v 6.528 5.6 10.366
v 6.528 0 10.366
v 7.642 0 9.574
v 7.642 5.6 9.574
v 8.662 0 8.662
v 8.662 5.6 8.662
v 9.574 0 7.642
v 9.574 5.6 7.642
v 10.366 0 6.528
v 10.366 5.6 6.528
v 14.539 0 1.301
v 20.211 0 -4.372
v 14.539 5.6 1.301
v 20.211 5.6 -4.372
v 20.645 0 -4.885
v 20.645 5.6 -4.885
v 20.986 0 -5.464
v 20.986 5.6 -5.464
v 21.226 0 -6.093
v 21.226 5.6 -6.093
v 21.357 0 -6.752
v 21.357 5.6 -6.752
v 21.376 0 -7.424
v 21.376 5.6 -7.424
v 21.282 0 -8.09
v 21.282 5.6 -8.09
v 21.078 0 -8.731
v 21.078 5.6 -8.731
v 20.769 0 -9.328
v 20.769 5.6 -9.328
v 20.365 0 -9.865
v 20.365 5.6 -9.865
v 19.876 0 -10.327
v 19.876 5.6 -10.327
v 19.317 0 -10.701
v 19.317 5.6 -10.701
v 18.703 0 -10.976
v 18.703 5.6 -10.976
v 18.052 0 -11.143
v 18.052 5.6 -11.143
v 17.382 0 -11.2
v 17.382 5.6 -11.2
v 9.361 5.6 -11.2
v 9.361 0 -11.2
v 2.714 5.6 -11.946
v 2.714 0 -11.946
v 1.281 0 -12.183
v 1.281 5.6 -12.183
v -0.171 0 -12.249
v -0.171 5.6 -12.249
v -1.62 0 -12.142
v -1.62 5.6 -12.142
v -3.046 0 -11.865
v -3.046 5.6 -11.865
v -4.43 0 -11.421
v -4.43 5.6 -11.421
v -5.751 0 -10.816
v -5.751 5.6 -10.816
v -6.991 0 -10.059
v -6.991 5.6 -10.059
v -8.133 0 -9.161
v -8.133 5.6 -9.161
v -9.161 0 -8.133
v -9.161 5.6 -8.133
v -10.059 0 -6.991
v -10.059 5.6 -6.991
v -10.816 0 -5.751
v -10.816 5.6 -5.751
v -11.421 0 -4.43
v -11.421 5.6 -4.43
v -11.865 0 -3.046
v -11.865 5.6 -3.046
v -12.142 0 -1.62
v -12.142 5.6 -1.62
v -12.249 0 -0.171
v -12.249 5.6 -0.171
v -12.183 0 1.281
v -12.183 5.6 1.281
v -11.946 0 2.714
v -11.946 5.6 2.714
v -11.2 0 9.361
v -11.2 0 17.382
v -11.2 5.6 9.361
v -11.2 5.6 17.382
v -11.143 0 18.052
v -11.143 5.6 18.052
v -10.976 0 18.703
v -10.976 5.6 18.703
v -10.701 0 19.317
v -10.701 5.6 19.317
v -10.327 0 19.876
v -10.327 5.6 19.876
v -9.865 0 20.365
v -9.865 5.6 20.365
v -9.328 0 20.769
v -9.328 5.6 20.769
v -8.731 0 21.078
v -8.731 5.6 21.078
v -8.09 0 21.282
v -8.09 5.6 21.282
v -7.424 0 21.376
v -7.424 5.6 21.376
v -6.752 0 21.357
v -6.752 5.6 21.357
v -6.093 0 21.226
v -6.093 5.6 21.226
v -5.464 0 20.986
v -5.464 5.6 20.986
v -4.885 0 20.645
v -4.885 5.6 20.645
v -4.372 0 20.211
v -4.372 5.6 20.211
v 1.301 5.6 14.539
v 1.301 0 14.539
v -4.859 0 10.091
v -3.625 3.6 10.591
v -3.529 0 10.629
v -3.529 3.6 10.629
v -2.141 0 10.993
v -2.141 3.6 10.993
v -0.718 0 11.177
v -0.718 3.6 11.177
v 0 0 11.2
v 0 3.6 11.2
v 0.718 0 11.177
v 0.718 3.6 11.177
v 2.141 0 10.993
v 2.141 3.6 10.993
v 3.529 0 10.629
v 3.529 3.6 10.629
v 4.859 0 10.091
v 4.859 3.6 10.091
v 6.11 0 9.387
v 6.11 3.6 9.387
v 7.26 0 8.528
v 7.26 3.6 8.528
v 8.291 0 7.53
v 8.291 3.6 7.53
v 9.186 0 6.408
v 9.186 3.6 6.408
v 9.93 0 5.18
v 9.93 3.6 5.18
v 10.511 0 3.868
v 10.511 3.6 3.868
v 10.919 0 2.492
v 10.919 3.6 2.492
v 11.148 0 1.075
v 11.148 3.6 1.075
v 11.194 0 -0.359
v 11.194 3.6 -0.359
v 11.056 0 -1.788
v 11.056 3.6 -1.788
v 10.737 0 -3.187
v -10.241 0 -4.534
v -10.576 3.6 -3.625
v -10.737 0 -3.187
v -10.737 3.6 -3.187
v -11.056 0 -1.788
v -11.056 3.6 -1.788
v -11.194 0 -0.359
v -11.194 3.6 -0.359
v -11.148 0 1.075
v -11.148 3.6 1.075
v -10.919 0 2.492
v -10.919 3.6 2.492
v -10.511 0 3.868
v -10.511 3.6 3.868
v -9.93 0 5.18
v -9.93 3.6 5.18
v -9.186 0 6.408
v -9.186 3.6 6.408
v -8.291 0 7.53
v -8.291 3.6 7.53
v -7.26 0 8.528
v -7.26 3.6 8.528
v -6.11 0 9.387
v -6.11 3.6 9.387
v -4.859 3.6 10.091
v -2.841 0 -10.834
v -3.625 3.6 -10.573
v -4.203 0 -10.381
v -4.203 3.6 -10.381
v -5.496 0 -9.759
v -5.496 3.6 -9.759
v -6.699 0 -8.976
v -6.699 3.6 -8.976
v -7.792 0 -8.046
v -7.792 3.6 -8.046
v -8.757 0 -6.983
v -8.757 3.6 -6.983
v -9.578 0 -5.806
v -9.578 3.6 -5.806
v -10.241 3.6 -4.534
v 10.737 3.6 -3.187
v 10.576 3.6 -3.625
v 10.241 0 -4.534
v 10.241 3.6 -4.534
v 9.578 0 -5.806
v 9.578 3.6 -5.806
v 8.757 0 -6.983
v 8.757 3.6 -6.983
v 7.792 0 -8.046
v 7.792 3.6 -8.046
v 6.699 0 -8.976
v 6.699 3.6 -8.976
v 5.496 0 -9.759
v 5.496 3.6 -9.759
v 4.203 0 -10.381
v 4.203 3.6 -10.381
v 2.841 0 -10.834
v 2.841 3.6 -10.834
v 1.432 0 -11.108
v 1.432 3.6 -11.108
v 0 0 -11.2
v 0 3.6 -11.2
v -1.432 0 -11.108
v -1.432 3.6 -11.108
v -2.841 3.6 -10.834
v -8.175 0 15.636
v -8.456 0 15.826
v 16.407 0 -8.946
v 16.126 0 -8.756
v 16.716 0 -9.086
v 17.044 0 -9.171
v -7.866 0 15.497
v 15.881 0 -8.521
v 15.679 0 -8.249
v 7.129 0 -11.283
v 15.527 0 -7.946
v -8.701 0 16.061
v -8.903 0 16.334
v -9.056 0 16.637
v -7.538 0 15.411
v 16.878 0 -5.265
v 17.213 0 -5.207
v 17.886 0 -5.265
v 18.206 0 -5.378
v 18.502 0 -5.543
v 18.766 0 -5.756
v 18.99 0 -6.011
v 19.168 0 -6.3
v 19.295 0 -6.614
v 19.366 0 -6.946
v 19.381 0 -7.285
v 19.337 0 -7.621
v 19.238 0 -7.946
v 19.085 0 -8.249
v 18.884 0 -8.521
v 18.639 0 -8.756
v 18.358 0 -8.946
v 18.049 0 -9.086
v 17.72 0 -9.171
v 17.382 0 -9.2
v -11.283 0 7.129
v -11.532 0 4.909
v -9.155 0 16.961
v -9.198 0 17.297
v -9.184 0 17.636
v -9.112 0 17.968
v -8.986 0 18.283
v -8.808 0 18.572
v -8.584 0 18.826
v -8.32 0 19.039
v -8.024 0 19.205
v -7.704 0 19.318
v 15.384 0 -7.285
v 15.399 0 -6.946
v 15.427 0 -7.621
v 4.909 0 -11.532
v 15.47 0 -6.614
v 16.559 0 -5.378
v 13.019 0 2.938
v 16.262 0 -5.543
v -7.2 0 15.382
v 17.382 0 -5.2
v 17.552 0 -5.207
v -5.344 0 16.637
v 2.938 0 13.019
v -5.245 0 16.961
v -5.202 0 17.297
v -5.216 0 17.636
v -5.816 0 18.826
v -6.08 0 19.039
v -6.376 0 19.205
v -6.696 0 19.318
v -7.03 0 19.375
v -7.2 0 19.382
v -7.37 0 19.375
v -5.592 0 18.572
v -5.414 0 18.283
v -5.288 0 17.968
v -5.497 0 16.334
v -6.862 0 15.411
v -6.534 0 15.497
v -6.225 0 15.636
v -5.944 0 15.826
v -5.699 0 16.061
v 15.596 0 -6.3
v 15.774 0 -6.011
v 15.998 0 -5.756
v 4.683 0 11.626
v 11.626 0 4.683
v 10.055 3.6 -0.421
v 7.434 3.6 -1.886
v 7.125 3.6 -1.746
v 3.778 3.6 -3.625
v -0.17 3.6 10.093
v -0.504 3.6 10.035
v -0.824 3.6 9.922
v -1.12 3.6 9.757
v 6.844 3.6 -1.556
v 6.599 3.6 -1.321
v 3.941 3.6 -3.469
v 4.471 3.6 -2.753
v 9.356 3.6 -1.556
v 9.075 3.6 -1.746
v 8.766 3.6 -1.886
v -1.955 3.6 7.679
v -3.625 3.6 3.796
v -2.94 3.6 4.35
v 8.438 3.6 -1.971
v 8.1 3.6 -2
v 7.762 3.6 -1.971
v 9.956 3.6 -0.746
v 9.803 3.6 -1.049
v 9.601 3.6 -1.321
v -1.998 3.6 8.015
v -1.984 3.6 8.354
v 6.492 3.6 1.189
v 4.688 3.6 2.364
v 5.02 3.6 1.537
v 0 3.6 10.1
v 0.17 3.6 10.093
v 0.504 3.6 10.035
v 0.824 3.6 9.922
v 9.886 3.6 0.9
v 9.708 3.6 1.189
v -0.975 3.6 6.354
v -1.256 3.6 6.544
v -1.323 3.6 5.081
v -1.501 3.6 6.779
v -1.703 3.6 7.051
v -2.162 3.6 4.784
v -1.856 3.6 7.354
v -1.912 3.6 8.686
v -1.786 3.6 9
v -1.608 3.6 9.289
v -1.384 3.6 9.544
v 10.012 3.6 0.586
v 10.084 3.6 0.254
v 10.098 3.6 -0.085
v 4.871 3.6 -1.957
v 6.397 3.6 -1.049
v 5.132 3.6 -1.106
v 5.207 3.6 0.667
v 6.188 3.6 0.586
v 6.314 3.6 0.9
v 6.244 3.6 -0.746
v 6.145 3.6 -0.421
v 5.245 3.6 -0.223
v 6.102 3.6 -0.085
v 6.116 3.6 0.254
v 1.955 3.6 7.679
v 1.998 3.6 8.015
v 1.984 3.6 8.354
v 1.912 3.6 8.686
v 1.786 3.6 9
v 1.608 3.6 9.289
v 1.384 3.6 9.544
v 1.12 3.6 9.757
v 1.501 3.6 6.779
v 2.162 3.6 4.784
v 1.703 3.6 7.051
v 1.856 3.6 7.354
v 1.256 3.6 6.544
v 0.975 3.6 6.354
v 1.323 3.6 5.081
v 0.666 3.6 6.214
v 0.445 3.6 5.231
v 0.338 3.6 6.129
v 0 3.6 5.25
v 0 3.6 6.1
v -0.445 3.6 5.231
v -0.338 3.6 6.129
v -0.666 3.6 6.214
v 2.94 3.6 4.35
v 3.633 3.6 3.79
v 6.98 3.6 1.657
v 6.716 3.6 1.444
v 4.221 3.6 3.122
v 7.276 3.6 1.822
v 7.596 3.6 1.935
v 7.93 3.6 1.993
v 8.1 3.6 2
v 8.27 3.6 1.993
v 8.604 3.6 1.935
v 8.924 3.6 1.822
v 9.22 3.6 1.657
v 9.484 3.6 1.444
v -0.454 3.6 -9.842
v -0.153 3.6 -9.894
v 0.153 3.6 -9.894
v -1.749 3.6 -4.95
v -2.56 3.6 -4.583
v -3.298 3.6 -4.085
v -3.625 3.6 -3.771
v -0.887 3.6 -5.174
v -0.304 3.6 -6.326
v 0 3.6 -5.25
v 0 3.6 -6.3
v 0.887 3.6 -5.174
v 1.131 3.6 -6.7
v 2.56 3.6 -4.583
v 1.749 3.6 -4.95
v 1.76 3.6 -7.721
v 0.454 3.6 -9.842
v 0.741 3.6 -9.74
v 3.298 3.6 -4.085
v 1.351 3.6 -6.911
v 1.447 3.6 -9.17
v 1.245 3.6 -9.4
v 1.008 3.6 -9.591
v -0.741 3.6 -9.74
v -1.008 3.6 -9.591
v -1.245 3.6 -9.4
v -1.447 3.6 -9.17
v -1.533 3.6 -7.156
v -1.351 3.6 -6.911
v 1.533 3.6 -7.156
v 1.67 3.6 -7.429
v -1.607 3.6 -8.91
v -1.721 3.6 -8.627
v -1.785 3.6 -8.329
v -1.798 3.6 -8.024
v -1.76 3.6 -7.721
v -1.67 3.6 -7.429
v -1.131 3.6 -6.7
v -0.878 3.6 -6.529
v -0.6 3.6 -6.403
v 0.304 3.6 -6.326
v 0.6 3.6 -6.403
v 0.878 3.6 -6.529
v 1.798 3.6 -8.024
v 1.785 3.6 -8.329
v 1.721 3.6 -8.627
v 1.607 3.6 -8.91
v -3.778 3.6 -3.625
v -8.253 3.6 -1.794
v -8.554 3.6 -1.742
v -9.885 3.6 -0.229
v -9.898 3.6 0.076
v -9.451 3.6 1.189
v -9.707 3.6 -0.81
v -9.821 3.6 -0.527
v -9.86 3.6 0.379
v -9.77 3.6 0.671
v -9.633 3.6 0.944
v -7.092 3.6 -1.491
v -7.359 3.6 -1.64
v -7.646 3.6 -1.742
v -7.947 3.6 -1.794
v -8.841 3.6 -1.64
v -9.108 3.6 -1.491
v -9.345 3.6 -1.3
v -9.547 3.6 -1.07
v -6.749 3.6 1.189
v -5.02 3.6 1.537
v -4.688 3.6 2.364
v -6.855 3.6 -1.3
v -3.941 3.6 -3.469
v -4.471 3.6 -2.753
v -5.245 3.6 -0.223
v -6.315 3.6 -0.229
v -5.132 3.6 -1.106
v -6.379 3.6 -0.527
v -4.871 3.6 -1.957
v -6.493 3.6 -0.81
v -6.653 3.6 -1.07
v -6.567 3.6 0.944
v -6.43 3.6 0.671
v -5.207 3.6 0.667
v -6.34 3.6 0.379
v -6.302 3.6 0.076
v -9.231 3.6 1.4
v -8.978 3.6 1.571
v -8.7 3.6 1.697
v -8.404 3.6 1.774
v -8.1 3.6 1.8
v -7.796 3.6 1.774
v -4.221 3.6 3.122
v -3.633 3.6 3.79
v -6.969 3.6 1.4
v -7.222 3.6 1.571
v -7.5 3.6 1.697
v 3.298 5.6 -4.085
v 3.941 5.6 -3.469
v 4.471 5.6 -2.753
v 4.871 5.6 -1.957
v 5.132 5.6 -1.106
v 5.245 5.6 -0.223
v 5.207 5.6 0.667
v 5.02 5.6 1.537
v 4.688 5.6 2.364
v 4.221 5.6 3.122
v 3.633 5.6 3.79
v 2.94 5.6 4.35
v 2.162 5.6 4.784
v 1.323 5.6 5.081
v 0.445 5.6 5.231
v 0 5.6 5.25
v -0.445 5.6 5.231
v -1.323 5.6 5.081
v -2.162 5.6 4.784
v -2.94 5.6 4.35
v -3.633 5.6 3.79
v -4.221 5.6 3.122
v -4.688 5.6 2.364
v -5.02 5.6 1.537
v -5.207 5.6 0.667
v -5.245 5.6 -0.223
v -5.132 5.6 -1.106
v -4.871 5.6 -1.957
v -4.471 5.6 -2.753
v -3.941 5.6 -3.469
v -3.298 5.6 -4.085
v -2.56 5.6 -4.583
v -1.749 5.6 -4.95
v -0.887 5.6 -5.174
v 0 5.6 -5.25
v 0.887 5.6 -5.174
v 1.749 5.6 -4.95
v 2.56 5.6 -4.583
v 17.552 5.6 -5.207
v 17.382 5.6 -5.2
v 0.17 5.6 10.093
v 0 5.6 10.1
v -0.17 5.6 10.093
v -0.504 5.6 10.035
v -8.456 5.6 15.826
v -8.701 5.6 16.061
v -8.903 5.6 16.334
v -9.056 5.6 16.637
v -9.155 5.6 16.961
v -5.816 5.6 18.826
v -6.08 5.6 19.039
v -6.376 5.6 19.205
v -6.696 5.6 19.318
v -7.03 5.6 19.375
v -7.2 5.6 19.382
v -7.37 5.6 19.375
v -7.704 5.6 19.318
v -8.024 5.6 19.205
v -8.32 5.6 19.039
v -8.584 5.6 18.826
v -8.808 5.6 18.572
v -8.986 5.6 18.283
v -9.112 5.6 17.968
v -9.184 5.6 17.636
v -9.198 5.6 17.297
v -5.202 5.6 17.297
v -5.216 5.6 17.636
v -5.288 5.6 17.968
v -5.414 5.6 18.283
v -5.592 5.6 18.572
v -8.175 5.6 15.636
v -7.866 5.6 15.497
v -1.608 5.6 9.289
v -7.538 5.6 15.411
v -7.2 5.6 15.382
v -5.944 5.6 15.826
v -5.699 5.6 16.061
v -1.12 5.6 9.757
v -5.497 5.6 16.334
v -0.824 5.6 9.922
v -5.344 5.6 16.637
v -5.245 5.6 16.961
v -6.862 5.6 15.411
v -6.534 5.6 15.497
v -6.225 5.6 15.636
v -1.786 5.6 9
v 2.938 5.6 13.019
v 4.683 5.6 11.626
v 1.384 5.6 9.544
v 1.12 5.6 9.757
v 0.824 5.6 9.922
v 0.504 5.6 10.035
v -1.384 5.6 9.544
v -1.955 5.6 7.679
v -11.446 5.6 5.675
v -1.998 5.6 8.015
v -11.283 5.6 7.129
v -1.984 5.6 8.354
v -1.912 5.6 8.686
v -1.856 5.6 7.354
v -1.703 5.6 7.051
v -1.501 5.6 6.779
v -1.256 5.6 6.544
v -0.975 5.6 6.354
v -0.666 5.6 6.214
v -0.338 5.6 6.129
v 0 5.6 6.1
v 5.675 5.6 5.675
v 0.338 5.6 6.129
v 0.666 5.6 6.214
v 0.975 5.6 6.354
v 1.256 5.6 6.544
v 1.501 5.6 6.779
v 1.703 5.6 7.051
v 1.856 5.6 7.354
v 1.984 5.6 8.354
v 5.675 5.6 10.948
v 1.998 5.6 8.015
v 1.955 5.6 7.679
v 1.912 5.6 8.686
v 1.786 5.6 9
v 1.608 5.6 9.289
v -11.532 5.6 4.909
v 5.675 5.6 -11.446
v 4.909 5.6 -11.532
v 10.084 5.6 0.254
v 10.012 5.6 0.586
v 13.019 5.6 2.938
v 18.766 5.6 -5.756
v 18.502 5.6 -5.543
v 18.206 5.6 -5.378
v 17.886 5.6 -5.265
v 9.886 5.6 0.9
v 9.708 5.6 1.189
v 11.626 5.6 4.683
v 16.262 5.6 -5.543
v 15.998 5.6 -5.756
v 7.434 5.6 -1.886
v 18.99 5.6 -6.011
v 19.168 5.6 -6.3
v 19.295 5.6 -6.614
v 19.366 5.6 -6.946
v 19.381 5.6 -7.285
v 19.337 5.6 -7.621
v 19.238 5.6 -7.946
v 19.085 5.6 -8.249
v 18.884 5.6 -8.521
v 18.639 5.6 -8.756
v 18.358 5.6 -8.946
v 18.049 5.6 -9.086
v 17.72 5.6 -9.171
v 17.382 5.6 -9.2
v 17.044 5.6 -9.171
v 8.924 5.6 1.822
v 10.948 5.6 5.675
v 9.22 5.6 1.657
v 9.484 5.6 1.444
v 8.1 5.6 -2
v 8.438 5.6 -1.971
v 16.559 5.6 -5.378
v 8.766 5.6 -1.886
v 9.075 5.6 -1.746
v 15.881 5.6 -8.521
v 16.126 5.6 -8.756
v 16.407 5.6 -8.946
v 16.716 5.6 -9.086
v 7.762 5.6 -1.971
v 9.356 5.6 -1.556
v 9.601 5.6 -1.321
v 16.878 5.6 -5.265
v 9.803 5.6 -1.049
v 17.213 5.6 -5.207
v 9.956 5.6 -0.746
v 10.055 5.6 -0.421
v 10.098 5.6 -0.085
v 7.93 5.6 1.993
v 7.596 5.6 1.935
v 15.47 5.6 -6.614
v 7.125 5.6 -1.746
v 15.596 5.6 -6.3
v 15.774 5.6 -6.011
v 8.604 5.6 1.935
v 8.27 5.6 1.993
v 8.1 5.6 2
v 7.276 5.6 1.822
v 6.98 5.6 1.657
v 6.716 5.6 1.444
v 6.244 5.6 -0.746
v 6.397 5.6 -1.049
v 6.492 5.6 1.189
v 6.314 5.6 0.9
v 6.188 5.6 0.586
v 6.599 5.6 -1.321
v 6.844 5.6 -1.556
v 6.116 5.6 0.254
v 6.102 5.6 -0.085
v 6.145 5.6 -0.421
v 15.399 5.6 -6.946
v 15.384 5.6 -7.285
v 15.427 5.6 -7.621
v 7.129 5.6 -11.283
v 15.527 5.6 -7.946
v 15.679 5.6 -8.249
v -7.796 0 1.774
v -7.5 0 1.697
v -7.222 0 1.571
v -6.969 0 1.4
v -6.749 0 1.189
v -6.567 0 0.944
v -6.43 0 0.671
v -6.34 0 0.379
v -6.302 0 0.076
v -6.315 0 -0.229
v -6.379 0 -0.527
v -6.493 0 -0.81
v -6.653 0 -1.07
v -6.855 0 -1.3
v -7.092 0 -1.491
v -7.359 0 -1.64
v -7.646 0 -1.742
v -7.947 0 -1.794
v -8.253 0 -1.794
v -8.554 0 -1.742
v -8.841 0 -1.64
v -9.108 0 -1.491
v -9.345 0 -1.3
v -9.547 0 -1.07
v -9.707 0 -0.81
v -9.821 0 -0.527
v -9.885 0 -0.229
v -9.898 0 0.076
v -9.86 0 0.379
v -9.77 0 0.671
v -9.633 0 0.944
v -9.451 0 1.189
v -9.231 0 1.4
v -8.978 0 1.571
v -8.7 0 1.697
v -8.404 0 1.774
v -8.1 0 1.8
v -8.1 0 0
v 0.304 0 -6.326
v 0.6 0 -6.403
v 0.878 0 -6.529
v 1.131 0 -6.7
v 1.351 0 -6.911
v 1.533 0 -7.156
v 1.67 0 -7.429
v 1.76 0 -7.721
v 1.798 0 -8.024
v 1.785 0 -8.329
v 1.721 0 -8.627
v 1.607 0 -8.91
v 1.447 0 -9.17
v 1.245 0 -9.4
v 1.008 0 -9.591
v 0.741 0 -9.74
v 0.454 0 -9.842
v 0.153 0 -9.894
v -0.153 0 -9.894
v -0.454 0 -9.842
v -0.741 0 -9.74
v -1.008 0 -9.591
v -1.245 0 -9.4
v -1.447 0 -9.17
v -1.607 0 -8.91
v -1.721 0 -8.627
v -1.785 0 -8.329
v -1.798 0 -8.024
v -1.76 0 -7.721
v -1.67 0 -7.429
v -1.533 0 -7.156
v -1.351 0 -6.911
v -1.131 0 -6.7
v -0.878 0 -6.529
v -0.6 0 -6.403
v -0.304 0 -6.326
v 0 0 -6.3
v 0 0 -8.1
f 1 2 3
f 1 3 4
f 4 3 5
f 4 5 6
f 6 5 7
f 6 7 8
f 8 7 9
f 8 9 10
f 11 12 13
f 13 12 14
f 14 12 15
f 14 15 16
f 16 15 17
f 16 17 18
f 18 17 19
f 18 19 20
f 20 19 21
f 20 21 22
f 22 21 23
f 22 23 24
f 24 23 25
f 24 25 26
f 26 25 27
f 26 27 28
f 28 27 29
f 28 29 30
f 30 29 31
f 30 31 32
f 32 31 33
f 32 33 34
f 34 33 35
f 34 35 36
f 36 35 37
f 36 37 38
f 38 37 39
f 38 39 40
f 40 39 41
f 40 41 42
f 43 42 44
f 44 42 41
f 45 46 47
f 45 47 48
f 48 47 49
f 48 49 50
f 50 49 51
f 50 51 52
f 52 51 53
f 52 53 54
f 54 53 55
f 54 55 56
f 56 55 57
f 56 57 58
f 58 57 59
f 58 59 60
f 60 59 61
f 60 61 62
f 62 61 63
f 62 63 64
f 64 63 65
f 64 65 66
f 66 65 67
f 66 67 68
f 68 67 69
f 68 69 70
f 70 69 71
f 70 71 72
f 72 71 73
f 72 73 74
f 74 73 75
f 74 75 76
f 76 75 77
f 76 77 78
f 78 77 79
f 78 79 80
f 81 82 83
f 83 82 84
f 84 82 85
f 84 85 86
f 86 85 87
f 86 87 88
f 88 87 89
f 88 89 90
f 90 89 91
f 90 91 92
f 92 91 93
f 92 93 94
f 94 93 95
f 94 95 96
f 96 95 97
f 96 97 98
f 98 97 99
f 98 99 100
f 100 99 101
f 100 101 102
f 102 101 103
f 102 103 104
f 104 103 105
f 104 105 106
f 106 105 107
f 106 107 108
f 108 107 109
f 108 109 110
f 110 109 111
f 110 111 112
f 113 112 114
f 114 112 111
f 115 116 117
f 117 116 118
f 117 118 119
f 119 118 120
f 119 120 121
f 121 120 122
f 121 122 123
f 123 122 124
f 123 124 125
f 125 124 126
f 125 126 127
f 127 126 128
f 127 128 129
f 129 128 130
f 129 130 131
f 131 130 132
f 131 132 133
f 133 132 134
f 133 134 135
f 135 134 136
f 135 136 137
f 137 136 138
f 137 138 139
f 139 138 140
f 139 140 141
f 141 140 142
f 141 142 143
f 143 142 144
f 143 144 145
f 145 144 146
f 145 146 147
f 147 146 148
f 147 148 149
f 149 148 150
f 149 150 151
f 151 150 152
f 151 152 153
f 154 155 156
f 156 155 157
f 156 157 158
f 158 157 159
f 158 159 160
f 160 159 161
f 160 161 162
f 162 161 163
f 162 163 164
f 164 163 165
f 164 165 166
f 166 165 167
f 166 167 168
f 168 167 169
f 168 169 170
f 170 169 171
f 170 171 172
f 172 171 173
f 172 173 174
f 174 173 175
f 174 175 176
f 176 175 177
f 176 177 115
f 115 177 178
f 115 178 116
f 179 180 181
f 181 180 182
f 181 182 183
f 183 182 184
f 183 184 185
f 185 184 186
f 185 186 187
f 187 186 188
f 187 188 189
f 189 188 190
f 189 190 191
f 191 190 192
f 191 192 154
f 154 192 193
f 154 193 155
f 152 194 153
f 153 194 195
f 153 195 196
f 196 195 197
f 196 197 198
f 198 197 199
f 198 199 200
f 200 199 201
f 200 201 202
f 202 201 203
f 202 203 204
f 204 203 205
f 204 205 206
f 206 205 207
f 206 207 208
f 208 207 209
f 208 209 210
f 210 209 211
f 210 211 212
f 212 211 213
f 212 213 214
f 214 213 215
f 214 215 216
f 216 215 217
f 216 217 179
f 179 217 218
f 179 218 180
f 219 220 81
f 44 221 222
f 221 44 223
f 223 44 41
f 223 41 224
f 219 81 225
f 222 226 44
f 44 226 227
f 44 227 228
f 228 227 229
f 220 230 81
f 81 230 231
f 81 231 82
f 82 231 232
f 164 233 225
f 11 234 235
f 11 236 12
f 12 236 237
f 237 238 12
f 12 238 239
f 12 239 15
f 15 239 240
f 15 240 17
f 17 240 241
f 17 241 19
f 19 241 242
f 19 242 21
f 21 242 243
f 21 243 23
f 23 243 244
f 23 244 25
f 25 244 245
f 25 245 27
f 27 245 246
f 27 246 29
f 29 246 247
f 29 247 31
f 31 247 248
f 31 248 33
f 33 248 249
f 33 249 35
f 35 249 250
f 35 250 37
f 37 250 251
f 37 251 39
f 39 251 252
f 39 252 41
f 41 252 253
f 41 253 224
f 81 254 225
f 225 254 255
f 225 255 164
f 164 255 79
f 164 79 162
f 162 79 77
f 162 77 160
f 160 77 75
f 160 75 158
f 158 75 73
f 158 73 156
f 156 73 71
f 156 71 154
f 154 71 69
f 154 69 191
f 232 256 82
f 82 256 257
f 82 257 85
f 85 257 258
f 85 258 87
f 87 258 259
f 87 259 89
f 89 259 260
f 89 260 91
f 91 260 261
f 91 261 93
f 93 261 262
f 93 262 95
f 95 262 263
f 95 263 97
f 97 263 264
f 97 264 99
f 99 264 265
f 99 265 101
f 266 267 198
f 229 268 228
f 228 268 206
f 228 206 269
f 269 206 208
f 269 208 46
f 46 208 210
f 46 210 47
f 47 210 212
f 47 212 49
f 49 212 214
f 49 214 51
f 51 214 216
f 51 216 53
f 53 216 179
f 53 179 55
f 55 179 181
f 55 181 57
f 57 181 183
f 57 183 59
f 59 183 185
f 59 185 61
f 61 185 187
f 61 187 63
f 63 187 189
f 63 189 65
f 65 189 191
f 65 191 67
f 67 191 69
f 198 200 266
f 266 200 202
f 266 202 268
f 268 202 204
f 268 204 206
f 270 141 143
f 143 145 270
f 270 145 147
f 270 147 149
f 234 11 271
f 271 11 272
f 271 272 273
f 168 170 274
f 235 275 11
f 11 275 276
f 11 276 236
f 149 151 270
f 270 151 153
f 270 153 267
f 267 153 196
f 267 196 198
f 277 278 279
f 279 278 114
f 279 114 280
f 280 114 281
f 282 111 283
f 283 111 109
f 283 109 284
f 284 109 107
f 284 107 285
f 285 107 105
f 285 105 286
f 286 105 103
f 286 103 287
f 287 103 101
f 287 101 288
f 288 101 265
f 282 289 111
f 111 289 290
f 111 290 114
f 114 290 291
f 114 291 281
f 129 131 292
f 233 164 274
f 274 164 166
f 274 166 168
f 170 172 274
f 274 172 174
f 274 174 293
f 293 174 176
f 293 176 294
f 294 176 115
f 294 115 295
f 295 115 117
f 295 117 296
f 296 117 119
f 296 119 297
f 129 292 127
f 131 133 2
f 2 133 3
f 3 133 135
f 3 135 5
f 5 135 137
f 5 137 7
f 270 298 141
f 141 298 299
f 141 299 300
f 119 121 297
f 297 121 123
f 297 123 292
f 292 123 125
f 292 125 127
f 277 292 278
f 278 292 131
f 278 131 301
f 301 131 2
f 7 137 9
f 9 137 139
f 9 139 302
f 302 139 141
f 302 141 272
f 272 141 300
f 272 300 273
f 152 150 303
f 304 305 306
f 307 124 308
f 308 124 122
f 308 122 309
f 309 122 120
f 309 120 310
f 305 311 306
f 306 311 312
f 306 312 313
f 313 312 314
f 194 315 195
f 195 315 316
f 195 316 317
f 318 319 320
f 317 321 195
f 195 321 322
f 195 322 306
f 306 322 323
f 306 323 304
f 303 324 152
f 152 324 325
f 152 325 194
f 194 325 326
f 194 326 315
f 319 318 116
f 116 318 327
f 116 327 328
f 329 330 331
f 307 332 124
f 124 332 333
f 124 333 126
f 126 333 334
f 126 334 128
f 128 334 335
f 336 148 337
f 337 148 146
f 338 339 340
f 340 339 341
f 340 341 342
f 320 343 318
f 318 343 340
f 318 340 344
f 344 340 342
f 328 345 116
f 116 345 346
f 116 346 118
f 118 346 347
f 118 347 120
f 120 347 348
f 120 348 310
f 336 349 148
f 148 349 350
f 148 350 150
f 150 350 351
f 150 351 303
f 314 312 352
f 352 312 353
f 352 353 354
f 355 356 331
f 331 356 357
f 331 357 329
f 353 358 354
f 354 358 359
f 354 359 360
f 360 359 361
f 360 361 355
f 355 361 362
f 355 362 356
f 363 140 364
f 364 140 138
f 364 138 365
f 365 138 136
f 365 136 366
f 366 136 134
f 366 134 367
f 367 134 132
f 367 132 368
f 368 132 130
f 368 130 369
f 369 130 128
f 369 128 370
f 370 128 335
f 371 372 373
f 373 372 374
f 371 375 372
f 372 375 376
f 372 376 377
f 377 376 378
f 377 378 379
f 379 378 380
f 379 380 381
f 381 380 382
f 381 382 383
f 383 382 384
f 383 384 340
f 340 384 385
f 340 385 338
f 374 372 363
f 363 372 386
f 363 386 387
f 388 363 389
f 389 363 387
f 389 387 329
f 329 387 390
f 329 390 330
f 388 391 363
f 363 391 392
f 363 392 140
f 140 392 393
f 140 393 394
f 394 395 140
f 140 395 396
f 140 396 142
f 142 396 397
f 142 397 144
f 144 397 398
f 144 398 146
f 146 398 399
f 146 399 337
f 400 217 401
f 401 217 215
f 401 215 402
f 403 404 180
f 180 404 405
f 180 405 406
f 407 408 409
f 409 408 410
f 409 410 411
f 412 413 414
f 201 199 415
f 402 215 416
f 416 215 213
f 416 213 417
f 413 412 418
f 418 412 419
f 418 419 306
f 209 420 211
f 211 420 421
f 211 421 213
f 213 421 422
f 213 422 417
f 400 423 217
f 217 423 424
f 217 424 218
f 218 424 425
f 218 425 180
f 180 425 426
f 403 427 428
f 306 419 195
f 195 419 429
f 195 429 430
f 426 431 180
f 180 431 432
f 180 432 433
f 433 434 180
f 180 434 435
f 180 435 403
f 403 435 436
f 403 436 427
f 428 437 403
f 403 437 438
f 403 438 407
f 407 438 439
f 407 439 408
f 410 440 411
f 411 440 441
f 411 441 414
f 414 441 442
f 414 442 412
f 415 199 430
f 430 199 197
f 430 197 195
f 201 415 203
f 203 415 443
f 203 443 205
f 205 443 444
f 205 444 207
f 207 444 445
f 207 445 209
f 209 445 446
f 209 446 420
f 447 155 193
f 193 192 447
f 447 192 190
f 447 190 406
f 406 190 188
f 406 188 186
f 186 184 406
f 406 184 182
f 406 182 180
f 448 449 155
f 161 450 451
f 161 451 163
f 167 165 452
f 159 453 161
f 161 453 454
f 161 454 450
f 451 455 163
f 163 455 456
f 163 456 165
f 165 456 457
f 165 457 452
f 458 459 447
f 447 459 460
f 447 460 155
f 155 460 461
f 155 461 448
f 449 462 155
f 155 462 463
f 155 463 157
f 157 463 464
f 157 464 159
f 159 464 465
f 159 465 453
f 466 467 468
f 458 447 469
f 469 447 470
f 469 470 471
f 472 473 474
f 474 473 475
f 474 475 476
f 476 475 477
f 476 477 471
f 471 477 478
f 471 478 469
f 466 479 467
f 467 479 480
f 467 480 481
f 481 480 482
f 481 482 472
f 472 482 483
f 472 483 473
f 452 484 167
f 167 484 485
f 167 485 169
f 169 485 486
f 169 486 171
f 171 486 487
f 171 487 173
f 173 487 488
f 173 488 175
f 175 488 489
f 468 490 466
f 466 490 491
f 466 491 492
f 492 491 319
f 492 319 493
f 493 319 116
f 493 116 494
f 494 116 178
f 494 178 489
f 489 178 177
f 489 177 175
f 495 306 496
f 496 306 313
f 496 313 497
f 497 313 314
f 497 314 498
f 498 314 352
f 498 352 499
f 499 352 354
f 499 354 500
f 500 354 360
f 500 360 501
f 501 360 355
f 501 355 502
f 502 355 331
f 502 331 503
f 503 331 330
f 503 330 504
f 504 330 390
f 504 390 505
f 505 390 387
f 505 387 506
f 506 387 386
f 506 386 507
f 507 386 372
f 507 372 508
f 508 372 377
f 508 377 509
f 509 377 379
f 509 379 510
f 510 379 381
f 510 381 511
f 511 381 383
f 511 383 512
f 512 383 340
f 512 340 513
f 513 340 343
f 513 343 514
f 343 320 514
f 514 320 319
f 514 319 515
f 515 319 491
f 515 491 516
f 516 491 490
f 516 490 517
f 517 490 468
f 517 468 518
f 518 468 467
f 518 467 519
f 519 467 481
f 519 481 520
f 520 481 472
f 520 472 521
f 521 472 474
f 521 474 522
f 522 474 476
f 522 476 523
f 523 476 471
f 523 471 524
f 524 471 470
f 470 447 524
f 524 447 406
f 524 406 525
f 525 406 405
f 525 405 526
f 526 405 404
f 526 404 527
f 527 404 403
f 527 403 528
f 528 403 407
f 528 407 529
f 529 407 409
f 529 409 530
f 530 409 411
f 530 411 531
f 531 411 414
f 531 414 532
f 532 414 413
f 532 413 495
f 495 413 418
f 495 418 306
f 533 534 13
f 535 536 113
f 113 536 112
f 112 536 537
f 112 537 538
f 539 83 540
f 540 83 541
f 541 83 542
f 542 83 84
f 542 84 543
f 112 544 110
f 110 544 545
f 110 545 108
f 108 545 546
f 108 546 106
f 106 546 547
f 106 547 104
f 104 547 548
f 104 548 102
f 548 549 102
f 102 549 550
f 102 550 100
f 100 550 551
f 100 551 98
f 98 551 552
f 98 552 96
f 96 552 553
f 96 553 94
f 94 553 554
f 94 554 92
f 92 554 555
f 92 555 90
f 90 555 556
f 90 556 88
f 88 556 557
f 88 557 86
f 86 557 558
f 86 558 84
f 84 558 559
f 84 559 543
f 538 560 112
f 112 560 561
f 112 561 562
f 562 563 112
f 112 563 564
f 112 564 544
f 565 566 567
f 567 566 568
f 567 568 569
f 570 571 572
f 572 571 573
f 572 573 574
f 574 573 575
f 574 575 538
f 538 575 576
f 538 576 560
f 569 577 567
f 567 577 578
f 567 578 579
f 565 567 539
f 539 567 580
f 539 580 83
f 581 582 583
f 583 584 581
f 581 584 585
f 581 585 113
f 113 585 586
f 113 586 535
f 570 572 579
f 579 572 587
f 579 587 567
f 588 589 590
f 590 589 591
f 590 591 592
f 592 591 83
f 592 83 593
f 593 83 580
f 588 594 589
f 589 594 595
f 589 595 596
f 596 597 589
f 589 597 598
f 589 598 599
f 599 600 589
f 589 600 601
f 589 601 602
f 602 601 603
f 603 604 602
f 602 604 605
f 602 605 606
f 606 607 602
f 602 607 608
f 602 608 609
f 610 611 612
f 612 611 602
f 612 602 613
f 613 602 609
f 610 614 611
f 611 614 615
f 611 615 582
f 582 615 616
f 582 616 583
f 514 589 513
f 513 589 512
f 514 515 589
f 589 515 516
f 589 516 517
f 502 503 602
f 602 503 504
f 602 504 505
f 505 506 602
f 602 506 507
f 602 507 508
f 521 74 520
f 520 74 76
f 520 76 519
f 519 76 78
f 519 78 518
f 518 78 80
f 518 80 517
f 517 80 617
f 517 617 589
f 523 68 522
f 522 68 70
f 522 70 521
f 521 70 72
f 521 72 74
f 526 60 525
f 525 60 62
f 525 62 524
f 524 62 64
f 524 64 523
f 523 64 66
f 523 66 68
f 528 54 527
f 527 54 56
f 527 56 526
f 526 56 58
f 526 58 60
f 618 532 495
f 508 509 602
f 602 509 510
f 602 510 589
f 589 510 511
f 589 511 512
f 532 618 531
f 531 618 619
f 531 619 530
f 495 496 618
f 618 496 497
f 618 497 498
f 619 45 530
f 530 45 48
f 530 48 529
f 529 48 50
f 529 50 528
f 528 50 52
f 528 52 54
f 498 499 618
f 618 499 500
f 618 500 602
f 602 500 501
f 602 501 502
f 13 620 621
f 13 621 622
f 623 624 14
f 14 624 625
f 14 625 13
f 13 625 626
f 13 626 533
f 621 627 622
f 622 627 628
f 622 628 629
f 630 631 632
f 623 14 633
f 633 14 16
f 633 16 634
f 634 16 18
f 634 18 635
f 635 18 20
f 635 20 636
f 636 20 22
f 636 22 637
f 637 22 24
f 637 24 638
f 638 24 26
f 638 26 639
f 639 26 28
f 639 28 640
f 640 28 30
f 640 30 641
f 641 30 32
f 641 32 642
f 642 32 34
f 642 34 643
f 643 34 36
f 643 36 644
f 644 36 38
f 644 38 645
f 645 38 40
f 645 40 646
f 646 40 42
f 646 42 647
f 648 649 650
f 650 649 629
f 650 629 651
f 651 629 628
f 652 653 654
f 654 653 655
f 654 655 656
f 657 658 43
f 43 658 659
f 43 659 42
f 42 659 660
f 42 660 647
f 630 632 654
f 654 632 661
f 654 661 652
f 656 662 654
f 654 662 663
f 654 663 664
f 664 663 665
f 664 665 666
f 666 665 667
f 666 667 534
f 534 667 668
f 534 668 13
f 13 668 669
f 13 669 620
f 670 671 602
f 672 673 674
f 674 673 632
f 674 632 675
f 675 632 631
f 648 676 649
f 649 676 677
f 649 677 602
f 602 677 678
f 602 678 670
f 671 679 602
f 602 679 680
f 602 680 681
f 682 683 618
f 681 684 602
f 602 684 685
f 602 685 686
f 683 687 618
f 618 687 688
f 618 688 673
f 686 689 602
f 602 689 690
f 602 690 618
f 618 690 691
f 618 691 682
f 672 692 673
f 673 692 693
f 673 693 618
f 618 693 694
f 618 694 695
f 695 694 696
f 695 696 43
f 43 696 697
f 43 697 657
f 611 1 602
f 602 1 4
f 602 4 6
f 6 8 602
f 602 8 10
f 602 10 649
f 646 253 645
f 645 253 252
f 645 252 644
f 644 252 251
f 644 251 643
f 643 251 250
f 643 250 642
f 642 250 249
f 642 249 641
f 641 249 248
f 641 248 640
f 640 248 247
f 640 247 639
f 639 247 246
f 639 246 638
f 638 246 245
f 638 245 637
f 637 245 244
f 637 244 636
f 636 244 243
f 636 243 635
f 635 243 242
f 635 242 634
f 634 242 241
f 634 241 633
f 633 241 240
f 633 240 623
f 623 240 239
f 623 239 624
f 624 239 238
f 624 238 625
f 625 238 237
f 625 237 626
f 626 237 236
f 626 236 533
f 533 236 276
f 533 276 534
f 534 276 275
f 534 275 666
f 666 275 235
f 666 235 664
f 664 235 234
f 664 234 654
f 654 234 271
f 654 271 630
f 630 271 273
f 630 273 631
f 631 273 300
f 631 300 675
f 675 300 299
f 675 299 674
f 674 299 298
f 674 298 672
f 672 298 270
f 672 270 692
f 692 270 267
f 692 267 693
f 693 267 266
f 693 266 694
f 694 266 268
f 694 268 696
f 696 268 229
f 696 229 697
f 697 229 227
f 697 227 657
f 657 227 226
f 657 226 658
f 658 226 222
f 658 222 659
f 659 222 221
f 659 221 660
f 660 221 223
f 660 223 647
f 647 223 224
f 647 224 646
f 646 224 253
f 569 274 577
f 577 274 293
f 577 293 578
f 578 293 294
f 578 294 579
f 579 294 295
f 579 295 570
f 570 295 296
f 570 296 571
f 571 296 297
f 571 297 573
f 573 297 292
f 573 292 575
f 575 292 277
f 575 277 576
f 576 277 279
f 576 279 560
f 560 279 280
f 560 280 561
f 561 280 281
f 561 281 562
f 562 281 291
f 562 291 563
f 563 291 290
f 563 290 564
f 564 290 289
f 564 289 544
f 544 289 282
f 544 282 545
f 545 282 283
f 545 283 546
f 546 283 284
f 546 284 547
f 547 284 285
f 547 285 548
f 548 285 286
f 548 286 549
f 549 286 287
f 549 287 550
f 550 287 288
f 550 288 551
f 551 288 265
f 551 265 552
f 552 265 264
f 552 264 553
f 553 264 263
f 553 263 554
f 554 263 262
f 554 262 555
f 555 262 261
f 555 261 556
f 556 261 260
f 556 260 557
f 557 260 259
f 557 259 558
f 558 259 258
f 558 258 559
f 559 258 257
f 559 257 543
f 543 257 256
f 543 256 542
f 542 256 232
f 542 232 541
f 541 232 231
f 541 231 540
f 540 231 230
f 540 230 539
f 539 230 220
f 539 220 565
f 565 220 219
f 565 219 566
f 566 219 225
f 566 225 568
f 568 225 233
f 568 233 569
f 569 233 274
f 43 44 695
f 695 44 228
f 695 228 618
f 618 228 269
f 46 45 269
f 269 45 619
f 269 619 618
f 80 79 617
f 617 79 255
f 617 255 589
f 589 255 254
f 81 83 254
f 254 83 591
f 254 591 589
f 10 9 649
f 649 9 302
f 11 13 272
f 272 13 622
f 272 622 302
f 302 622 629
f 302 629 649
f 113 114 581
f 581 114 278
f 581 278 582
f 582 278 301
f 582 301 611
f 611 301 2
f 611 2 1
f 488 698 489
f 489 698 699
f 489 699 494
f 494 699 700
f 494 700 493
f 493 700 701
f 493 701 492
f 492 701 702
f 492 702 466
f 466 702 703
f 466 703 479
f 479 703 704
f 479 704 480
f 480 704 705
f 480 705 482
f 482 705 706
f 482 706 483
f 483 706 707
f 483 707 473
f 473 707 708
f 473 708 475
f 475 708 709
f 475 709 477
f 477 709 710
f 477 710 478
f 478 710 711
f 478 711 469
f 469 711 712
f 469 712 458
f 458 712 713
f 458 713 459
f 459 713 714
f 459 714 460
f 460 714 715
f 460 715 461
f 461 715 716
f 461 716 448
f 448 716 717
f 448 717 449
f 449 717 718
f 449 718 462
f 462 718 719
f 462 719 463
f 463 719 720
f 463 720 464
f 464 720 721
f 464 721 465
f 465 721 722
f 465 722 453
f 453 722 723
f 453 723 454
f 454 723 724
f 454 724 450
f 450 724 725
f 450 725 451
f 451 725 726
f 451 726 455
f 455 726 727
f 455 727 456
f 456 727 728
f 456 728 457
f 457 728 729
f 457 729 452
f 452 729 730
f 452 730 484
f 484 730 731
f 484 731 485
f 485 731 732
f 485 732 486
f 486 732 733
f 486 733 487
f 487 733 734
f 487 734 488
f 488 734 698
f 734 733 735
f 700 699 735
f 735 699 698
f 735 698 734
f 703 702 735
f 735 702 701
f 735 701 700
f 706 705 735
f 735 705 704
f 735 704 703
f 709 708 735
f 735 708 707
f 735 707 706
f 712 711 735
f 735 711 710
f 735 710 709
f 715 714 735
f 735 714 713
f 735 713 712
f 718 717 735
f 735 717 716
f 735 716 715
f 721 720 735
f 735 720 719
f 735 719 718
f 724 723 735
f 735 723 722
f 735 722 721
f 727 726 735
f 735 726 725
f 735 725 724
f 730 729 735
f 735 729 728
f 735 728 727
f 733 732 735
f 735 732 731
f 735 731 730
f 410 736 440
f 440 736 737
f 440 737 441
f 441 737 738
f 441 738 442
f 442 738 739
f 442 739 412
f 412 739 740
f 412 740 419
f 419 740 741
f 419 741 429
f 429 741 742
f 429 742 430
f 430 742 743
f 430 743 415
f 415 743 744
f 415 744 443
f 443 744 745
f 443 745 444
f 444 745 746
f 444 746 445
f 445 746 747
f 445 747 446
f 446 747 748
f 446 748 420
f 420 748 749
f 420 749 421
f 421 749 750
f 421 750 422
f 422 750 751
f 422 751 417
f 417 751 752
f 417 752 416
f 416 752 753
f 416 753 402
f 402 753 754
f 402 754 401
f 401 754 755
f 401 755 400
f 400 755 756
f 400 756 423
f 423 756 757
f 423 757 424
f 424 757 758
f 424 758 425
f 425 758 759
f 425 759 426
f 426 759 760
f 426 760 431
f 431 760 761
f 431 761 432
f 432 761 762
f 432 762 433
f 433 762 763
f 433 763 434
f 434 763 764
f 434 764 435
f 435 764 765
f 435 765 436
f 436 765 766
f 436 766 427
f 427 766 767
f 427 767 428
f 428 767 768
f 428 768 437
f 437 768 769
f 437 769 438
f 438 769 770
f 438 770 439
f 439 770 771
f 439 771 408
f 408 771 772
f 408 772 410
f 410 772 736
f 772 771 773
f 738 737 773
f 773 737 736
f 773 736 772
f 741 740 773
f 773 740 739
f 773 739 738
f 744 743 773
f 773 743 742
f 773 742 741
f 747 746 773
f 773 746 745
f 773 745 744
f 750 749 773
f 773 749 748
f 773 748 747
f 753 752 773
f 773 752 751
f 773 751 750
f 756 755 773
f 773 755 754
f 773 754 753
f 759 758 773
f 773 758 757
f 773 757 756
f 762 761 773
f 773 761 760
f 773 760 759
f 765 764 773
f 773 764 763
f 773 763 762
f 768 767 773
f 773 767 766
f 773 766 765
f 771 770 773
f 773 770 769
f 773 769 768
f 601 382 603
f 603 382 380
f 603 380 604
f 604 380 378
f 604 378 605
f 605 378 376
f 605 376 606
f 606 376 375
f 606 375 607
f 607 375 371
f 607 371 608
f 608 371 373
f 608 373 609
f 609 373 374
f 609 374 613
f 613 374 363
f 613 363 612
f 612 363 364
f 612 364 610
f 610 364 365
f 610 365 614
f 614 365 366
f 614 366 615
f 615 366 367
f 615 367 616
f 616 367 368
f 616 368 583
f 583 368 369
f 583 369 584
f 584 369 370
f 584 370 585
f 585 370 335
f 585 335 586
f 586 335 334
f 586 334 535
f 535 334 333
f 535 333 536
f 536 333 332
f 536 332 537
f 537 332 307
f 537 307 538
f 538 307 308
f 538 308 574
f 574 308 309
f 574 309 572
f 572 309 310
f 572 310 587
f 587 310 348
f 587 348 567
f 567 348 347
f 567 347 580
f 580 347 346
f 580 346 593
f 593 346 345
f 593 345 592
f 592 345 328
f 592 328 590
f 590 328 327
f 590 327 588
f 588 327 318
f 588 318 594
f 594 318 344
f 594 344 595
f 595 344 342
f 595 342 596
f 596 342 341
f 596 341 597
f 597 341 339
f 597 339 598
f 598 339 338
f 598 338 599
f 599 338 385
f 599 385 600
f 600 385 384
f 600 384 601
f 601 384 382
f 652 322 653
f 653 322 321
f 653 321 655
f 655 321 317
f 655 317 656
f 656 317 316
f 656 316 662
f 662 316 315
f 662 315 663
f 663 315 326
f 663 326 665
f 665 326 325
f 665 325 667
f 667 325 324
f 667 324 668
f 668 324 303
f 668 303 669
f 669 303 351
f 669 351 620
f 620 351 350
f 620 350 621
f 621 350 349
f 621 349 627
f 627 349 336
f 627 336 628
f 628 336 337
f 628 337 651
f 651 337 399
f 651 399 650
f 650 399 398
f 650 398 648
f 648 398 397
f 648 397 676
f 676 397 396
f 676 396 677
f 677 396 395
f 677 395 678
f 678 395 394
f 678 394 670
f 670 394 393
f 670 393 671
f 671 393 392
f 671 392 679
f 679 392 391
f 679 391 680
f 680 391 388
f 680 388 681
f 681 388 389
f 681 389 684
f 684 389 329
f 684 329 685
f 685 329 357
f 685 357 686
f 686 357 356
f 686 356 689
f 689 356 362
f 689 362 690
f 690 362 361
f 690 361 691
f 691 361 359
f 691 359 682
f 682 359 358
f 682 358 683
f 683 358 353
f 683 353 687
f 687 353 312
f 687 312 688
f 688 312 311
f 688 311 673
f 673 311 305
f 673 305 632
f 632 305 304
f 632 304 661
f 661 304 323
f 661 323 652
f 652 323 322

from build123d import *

# Parameters (mm, degrees)
BOSS_EXTRUDE7_DEPTH = 3.6
SKETCH3_R           = 11.2
SKETCH3_R_2         = 5.25
BOSS_EXTRUDE8_DEPTH = 2
SKETCH4_R           = 2
CUT_EXTRUDE1_DEPTH  = 31.753353097
FILLET5_R           = 30
SKETCH5_R           = 1.8
BOSS_EXTRUDE9_DEPTH = 3.6
SKETCH6_R           = 2
CUT_EXTRUDE3_DEPTH  = 10


with BuildPart() as part:
    # Sketch1 → Boss-Extrude7 (new body)
    with BuildSketch(Plane(origin=(0, 0, 0), x_dir=(1, 0, 0), z_dir=(0, 1, 0))):
        with BuildLine():
            ThreePointArc((4.41085686, -11.428335039), (-4.687872046, -11.317524273), (-11.2, -4.962106408))
            Line((-11.2, -4.962106408), (-11.2, -17.382337649))
            ThreePointArc((-11.2, -17.382337649), (-8.730733729, -21.077855779), (-4.371572875, -20.210764774))
            Line((-4.371572875, -20.210764774), (4.41085686, -11.428335039))
        make_face()
        with BuildLine():
            ThreePointArc((7.91959592, -7.919595979), (-4.286054462, -10.347450756), (-11.2, 0))
            Line((-11.2, 0), (-11.2, -4.962106408))
            ThreePointArc((-11.2, -4.962106408), (-4.687872046, -11.317524273), (4.41085686, -11.428335039))
            Line((4.41085686, -11.428335039), (7.91959592, -7.919595979))
        make_face()
        with BuildLine():
            Line((11.428335039, -4.41085686), (7.91959592, -7.919595979))
            Line((7.91959592, -7.919595979), (4.41085686, -11.428335039))
            ThreePointArc((4.41085686, -11.428335039), (8.66205807, -8.66205807), (11.428335039, -4.41085686))
        make_face()
        with BuildLine():
            Line((4.962106408, 11.2), (0, 11.2))
            ThreePointArc((0, 11.2), (7.919595949, 7.919595949), (11.2, 0))
            ThreePointArc((11.2, 0), (10.347450756, -4.286054462), (7.91959592, -7.919595979))
            Line((7.91959592, -7.919595979), (11.428335039, -4.41085686))
            ThreePointArc((11.428335039, -4.41085686), (12.042831981, -2.243367532), (12.25, 0))
            ThreePointArc((12.25, 0), (10.267626393, 6.681193625), (4.962106408, 11.2))
        make_face()
        with BuildLine():
            Line((17.382337649, 11.2), (4.962106408, 11.2))
            ThreePointArc((4.962106408, 11.2), (10.267626393, 6.681193625), (12.25, 0))
            ThreePointArc((12.25, 0), (12.042831981, -2.243367532), (11.428335039, -4.41085686))
            Line((11.428335039, -4.41085686), (20.210764774, 4.371572875))
            ThreePointArc((20.210764774, 4.371572875), (21.077855779, 8.730733729), (17.382337649, 11.2))
        make_face()
        with BuildLine():
            ThreePointArc((-11.2, 0), (-7.919595949, 7.919595949), (0, 11.2))
            Line((0, 11.2), (4.962106408, 11.2))
            ThreePointArc((4.962106408, 11.2), (-8.66205807, 8.66205807), (-11.2, -4.962106408))
            Line((-11.2, -4.962106408), (-11.2, 0))
        make_face()
    extrude(amount=BOSS_EXTRUDE7_DEPTH)

    # Sketch3 → Boss-Extrude8 (add)
    # profile 1 of 2: a face of its own
    with BuildSketch(Plane(origin=(0, 3.6, 0), x_dir=(1, 0, 0), z_dir=(0, 1, 0))):
        with BuildLine():
            Line((-4.371572875, -20.210764774), (4.41085686, -11.428335039))
            ThreePointArc((4.41085686, -11.428335039), (8.66205807, -8.66205807), (11.428335039, -4.41085686))
            Line((11.428335039, -4.41085686), (20.210764774, 4.371572875))
            ThreePointArc((20.210764774, 4.371572875), (21.077855779, 8.730733729), (17.382337649, 11.2))
            Line((17.382337649, 11.2), (4.962106408, 11.2))
            ThreePointArc((4.962106408, 11.2), (-8.66205807, 8.66205807), (-11.2, -4.962106408))
            Line((-11.2, -4.962106408), (-11.2, -17.382337649))
            ThreePointArc((-11.2, -17.382337649), (-8.730733729, -21.077855779), (-4.371572875, -20.210764774))
        make_face()
        with Locations(Location((0, 0, 0), (0, 0, 270))):
            Circle(SKETCH3_R, mode=Mode.SUBTRACT)
    # profile 2 of 2: a face of its own
    with BuildSketch(Plane(origin=(0, 3.6, 0), x_dir=(1, 0, 0), z_dir=(0, 1, 0))):
        with Locations(Location((0, 0, 0), (0, 0, 270))):
            Circle(SKETCH3_R)
        with Locations(Location((0, 0, 0), (0, 0, 270))):
            Circle(SKETCH3_R_2, mode=Mode.SUBTRACT)
    extrude(amount=BOSS_EXTRUDE8_DEPTH)

    # Sketch4 → Cut-Extrude1 (cut, through all)
    with BuildSketch(Plane(origin=(0, 0, 0), x_dir=(1, 0, 0), z_dir=(0, 1, 0))):
        with Locations(Location((-7.2, -17.382337649, 0), (0, 0, 270))):
            Circle(SKETCH4_R)
        with Locations(Location((17.382337649, 7.2, 0), (0, 0, 270))):
            Circle(SKETCH4_R)
    extrude(amount=CUT_EXTRUDE1_DEPTH, mode=Mode.SUBTRACT)

    # Fillet5
    fillet5_edges = [part.edges().sort_by_distance(p)[0] for p in [
        (4.41085686, 2.8, 11.428335039),
        (-11.2, 2.8, 4.962106408),
        (4.962106408, 2.8, -11.2),
        (11.428335039, 2.8, 4.41085686),
    ]]
    fillet(fillet5_edges, radius=FILLET5_R)

    # Sketch5 → Boss-Extrude9 (add)
    with BuildSketch(Plane.XZ.offset(-3.6)):
        with Locations(Location((-8.1, 0, 0), (0, 0, 90))):
            Circle(SKETCH5_R)
        with Locations(Location((8.1, 0, 0), (0, 0, 90))):
            Circle(SKETCH5_R)
        with Locations(Location((0, -8.1, 0), (0, 0, 90))):
            Circle(SKETCH5_R)
        with Locations(Location((0, 8.1, 0), (0, 0, 90))):
            Circle(SKETCH5_R)
    extrude(amount=BOSS_EXTRUDE9_DEPTH)

    # Sketch6 → Cut-Extrude3 (cut)
    with BuildSketch(Plane.XZ):
        with Locations(Location((0, 8.1, 0), (0, 0, 90))):
            Circle(SKETCH6_R)
    cut_extrude3 = extrude(amount=-CUT_EXTRUDE3_DEPTH, mode=Mode.SUBTRACT)

    # Mirror1: Cut-Extrude3 across plane
    add(cut_extrude3.mirror(Plane(origin=(0, 0, 0), x_dir=(0.707106781186546, 0, 0.707106781186549), z_dir=(-0.707106781186549, 0, 0.707106781186546))), mode=Mode.SUBTRACT)


solid = part.part
